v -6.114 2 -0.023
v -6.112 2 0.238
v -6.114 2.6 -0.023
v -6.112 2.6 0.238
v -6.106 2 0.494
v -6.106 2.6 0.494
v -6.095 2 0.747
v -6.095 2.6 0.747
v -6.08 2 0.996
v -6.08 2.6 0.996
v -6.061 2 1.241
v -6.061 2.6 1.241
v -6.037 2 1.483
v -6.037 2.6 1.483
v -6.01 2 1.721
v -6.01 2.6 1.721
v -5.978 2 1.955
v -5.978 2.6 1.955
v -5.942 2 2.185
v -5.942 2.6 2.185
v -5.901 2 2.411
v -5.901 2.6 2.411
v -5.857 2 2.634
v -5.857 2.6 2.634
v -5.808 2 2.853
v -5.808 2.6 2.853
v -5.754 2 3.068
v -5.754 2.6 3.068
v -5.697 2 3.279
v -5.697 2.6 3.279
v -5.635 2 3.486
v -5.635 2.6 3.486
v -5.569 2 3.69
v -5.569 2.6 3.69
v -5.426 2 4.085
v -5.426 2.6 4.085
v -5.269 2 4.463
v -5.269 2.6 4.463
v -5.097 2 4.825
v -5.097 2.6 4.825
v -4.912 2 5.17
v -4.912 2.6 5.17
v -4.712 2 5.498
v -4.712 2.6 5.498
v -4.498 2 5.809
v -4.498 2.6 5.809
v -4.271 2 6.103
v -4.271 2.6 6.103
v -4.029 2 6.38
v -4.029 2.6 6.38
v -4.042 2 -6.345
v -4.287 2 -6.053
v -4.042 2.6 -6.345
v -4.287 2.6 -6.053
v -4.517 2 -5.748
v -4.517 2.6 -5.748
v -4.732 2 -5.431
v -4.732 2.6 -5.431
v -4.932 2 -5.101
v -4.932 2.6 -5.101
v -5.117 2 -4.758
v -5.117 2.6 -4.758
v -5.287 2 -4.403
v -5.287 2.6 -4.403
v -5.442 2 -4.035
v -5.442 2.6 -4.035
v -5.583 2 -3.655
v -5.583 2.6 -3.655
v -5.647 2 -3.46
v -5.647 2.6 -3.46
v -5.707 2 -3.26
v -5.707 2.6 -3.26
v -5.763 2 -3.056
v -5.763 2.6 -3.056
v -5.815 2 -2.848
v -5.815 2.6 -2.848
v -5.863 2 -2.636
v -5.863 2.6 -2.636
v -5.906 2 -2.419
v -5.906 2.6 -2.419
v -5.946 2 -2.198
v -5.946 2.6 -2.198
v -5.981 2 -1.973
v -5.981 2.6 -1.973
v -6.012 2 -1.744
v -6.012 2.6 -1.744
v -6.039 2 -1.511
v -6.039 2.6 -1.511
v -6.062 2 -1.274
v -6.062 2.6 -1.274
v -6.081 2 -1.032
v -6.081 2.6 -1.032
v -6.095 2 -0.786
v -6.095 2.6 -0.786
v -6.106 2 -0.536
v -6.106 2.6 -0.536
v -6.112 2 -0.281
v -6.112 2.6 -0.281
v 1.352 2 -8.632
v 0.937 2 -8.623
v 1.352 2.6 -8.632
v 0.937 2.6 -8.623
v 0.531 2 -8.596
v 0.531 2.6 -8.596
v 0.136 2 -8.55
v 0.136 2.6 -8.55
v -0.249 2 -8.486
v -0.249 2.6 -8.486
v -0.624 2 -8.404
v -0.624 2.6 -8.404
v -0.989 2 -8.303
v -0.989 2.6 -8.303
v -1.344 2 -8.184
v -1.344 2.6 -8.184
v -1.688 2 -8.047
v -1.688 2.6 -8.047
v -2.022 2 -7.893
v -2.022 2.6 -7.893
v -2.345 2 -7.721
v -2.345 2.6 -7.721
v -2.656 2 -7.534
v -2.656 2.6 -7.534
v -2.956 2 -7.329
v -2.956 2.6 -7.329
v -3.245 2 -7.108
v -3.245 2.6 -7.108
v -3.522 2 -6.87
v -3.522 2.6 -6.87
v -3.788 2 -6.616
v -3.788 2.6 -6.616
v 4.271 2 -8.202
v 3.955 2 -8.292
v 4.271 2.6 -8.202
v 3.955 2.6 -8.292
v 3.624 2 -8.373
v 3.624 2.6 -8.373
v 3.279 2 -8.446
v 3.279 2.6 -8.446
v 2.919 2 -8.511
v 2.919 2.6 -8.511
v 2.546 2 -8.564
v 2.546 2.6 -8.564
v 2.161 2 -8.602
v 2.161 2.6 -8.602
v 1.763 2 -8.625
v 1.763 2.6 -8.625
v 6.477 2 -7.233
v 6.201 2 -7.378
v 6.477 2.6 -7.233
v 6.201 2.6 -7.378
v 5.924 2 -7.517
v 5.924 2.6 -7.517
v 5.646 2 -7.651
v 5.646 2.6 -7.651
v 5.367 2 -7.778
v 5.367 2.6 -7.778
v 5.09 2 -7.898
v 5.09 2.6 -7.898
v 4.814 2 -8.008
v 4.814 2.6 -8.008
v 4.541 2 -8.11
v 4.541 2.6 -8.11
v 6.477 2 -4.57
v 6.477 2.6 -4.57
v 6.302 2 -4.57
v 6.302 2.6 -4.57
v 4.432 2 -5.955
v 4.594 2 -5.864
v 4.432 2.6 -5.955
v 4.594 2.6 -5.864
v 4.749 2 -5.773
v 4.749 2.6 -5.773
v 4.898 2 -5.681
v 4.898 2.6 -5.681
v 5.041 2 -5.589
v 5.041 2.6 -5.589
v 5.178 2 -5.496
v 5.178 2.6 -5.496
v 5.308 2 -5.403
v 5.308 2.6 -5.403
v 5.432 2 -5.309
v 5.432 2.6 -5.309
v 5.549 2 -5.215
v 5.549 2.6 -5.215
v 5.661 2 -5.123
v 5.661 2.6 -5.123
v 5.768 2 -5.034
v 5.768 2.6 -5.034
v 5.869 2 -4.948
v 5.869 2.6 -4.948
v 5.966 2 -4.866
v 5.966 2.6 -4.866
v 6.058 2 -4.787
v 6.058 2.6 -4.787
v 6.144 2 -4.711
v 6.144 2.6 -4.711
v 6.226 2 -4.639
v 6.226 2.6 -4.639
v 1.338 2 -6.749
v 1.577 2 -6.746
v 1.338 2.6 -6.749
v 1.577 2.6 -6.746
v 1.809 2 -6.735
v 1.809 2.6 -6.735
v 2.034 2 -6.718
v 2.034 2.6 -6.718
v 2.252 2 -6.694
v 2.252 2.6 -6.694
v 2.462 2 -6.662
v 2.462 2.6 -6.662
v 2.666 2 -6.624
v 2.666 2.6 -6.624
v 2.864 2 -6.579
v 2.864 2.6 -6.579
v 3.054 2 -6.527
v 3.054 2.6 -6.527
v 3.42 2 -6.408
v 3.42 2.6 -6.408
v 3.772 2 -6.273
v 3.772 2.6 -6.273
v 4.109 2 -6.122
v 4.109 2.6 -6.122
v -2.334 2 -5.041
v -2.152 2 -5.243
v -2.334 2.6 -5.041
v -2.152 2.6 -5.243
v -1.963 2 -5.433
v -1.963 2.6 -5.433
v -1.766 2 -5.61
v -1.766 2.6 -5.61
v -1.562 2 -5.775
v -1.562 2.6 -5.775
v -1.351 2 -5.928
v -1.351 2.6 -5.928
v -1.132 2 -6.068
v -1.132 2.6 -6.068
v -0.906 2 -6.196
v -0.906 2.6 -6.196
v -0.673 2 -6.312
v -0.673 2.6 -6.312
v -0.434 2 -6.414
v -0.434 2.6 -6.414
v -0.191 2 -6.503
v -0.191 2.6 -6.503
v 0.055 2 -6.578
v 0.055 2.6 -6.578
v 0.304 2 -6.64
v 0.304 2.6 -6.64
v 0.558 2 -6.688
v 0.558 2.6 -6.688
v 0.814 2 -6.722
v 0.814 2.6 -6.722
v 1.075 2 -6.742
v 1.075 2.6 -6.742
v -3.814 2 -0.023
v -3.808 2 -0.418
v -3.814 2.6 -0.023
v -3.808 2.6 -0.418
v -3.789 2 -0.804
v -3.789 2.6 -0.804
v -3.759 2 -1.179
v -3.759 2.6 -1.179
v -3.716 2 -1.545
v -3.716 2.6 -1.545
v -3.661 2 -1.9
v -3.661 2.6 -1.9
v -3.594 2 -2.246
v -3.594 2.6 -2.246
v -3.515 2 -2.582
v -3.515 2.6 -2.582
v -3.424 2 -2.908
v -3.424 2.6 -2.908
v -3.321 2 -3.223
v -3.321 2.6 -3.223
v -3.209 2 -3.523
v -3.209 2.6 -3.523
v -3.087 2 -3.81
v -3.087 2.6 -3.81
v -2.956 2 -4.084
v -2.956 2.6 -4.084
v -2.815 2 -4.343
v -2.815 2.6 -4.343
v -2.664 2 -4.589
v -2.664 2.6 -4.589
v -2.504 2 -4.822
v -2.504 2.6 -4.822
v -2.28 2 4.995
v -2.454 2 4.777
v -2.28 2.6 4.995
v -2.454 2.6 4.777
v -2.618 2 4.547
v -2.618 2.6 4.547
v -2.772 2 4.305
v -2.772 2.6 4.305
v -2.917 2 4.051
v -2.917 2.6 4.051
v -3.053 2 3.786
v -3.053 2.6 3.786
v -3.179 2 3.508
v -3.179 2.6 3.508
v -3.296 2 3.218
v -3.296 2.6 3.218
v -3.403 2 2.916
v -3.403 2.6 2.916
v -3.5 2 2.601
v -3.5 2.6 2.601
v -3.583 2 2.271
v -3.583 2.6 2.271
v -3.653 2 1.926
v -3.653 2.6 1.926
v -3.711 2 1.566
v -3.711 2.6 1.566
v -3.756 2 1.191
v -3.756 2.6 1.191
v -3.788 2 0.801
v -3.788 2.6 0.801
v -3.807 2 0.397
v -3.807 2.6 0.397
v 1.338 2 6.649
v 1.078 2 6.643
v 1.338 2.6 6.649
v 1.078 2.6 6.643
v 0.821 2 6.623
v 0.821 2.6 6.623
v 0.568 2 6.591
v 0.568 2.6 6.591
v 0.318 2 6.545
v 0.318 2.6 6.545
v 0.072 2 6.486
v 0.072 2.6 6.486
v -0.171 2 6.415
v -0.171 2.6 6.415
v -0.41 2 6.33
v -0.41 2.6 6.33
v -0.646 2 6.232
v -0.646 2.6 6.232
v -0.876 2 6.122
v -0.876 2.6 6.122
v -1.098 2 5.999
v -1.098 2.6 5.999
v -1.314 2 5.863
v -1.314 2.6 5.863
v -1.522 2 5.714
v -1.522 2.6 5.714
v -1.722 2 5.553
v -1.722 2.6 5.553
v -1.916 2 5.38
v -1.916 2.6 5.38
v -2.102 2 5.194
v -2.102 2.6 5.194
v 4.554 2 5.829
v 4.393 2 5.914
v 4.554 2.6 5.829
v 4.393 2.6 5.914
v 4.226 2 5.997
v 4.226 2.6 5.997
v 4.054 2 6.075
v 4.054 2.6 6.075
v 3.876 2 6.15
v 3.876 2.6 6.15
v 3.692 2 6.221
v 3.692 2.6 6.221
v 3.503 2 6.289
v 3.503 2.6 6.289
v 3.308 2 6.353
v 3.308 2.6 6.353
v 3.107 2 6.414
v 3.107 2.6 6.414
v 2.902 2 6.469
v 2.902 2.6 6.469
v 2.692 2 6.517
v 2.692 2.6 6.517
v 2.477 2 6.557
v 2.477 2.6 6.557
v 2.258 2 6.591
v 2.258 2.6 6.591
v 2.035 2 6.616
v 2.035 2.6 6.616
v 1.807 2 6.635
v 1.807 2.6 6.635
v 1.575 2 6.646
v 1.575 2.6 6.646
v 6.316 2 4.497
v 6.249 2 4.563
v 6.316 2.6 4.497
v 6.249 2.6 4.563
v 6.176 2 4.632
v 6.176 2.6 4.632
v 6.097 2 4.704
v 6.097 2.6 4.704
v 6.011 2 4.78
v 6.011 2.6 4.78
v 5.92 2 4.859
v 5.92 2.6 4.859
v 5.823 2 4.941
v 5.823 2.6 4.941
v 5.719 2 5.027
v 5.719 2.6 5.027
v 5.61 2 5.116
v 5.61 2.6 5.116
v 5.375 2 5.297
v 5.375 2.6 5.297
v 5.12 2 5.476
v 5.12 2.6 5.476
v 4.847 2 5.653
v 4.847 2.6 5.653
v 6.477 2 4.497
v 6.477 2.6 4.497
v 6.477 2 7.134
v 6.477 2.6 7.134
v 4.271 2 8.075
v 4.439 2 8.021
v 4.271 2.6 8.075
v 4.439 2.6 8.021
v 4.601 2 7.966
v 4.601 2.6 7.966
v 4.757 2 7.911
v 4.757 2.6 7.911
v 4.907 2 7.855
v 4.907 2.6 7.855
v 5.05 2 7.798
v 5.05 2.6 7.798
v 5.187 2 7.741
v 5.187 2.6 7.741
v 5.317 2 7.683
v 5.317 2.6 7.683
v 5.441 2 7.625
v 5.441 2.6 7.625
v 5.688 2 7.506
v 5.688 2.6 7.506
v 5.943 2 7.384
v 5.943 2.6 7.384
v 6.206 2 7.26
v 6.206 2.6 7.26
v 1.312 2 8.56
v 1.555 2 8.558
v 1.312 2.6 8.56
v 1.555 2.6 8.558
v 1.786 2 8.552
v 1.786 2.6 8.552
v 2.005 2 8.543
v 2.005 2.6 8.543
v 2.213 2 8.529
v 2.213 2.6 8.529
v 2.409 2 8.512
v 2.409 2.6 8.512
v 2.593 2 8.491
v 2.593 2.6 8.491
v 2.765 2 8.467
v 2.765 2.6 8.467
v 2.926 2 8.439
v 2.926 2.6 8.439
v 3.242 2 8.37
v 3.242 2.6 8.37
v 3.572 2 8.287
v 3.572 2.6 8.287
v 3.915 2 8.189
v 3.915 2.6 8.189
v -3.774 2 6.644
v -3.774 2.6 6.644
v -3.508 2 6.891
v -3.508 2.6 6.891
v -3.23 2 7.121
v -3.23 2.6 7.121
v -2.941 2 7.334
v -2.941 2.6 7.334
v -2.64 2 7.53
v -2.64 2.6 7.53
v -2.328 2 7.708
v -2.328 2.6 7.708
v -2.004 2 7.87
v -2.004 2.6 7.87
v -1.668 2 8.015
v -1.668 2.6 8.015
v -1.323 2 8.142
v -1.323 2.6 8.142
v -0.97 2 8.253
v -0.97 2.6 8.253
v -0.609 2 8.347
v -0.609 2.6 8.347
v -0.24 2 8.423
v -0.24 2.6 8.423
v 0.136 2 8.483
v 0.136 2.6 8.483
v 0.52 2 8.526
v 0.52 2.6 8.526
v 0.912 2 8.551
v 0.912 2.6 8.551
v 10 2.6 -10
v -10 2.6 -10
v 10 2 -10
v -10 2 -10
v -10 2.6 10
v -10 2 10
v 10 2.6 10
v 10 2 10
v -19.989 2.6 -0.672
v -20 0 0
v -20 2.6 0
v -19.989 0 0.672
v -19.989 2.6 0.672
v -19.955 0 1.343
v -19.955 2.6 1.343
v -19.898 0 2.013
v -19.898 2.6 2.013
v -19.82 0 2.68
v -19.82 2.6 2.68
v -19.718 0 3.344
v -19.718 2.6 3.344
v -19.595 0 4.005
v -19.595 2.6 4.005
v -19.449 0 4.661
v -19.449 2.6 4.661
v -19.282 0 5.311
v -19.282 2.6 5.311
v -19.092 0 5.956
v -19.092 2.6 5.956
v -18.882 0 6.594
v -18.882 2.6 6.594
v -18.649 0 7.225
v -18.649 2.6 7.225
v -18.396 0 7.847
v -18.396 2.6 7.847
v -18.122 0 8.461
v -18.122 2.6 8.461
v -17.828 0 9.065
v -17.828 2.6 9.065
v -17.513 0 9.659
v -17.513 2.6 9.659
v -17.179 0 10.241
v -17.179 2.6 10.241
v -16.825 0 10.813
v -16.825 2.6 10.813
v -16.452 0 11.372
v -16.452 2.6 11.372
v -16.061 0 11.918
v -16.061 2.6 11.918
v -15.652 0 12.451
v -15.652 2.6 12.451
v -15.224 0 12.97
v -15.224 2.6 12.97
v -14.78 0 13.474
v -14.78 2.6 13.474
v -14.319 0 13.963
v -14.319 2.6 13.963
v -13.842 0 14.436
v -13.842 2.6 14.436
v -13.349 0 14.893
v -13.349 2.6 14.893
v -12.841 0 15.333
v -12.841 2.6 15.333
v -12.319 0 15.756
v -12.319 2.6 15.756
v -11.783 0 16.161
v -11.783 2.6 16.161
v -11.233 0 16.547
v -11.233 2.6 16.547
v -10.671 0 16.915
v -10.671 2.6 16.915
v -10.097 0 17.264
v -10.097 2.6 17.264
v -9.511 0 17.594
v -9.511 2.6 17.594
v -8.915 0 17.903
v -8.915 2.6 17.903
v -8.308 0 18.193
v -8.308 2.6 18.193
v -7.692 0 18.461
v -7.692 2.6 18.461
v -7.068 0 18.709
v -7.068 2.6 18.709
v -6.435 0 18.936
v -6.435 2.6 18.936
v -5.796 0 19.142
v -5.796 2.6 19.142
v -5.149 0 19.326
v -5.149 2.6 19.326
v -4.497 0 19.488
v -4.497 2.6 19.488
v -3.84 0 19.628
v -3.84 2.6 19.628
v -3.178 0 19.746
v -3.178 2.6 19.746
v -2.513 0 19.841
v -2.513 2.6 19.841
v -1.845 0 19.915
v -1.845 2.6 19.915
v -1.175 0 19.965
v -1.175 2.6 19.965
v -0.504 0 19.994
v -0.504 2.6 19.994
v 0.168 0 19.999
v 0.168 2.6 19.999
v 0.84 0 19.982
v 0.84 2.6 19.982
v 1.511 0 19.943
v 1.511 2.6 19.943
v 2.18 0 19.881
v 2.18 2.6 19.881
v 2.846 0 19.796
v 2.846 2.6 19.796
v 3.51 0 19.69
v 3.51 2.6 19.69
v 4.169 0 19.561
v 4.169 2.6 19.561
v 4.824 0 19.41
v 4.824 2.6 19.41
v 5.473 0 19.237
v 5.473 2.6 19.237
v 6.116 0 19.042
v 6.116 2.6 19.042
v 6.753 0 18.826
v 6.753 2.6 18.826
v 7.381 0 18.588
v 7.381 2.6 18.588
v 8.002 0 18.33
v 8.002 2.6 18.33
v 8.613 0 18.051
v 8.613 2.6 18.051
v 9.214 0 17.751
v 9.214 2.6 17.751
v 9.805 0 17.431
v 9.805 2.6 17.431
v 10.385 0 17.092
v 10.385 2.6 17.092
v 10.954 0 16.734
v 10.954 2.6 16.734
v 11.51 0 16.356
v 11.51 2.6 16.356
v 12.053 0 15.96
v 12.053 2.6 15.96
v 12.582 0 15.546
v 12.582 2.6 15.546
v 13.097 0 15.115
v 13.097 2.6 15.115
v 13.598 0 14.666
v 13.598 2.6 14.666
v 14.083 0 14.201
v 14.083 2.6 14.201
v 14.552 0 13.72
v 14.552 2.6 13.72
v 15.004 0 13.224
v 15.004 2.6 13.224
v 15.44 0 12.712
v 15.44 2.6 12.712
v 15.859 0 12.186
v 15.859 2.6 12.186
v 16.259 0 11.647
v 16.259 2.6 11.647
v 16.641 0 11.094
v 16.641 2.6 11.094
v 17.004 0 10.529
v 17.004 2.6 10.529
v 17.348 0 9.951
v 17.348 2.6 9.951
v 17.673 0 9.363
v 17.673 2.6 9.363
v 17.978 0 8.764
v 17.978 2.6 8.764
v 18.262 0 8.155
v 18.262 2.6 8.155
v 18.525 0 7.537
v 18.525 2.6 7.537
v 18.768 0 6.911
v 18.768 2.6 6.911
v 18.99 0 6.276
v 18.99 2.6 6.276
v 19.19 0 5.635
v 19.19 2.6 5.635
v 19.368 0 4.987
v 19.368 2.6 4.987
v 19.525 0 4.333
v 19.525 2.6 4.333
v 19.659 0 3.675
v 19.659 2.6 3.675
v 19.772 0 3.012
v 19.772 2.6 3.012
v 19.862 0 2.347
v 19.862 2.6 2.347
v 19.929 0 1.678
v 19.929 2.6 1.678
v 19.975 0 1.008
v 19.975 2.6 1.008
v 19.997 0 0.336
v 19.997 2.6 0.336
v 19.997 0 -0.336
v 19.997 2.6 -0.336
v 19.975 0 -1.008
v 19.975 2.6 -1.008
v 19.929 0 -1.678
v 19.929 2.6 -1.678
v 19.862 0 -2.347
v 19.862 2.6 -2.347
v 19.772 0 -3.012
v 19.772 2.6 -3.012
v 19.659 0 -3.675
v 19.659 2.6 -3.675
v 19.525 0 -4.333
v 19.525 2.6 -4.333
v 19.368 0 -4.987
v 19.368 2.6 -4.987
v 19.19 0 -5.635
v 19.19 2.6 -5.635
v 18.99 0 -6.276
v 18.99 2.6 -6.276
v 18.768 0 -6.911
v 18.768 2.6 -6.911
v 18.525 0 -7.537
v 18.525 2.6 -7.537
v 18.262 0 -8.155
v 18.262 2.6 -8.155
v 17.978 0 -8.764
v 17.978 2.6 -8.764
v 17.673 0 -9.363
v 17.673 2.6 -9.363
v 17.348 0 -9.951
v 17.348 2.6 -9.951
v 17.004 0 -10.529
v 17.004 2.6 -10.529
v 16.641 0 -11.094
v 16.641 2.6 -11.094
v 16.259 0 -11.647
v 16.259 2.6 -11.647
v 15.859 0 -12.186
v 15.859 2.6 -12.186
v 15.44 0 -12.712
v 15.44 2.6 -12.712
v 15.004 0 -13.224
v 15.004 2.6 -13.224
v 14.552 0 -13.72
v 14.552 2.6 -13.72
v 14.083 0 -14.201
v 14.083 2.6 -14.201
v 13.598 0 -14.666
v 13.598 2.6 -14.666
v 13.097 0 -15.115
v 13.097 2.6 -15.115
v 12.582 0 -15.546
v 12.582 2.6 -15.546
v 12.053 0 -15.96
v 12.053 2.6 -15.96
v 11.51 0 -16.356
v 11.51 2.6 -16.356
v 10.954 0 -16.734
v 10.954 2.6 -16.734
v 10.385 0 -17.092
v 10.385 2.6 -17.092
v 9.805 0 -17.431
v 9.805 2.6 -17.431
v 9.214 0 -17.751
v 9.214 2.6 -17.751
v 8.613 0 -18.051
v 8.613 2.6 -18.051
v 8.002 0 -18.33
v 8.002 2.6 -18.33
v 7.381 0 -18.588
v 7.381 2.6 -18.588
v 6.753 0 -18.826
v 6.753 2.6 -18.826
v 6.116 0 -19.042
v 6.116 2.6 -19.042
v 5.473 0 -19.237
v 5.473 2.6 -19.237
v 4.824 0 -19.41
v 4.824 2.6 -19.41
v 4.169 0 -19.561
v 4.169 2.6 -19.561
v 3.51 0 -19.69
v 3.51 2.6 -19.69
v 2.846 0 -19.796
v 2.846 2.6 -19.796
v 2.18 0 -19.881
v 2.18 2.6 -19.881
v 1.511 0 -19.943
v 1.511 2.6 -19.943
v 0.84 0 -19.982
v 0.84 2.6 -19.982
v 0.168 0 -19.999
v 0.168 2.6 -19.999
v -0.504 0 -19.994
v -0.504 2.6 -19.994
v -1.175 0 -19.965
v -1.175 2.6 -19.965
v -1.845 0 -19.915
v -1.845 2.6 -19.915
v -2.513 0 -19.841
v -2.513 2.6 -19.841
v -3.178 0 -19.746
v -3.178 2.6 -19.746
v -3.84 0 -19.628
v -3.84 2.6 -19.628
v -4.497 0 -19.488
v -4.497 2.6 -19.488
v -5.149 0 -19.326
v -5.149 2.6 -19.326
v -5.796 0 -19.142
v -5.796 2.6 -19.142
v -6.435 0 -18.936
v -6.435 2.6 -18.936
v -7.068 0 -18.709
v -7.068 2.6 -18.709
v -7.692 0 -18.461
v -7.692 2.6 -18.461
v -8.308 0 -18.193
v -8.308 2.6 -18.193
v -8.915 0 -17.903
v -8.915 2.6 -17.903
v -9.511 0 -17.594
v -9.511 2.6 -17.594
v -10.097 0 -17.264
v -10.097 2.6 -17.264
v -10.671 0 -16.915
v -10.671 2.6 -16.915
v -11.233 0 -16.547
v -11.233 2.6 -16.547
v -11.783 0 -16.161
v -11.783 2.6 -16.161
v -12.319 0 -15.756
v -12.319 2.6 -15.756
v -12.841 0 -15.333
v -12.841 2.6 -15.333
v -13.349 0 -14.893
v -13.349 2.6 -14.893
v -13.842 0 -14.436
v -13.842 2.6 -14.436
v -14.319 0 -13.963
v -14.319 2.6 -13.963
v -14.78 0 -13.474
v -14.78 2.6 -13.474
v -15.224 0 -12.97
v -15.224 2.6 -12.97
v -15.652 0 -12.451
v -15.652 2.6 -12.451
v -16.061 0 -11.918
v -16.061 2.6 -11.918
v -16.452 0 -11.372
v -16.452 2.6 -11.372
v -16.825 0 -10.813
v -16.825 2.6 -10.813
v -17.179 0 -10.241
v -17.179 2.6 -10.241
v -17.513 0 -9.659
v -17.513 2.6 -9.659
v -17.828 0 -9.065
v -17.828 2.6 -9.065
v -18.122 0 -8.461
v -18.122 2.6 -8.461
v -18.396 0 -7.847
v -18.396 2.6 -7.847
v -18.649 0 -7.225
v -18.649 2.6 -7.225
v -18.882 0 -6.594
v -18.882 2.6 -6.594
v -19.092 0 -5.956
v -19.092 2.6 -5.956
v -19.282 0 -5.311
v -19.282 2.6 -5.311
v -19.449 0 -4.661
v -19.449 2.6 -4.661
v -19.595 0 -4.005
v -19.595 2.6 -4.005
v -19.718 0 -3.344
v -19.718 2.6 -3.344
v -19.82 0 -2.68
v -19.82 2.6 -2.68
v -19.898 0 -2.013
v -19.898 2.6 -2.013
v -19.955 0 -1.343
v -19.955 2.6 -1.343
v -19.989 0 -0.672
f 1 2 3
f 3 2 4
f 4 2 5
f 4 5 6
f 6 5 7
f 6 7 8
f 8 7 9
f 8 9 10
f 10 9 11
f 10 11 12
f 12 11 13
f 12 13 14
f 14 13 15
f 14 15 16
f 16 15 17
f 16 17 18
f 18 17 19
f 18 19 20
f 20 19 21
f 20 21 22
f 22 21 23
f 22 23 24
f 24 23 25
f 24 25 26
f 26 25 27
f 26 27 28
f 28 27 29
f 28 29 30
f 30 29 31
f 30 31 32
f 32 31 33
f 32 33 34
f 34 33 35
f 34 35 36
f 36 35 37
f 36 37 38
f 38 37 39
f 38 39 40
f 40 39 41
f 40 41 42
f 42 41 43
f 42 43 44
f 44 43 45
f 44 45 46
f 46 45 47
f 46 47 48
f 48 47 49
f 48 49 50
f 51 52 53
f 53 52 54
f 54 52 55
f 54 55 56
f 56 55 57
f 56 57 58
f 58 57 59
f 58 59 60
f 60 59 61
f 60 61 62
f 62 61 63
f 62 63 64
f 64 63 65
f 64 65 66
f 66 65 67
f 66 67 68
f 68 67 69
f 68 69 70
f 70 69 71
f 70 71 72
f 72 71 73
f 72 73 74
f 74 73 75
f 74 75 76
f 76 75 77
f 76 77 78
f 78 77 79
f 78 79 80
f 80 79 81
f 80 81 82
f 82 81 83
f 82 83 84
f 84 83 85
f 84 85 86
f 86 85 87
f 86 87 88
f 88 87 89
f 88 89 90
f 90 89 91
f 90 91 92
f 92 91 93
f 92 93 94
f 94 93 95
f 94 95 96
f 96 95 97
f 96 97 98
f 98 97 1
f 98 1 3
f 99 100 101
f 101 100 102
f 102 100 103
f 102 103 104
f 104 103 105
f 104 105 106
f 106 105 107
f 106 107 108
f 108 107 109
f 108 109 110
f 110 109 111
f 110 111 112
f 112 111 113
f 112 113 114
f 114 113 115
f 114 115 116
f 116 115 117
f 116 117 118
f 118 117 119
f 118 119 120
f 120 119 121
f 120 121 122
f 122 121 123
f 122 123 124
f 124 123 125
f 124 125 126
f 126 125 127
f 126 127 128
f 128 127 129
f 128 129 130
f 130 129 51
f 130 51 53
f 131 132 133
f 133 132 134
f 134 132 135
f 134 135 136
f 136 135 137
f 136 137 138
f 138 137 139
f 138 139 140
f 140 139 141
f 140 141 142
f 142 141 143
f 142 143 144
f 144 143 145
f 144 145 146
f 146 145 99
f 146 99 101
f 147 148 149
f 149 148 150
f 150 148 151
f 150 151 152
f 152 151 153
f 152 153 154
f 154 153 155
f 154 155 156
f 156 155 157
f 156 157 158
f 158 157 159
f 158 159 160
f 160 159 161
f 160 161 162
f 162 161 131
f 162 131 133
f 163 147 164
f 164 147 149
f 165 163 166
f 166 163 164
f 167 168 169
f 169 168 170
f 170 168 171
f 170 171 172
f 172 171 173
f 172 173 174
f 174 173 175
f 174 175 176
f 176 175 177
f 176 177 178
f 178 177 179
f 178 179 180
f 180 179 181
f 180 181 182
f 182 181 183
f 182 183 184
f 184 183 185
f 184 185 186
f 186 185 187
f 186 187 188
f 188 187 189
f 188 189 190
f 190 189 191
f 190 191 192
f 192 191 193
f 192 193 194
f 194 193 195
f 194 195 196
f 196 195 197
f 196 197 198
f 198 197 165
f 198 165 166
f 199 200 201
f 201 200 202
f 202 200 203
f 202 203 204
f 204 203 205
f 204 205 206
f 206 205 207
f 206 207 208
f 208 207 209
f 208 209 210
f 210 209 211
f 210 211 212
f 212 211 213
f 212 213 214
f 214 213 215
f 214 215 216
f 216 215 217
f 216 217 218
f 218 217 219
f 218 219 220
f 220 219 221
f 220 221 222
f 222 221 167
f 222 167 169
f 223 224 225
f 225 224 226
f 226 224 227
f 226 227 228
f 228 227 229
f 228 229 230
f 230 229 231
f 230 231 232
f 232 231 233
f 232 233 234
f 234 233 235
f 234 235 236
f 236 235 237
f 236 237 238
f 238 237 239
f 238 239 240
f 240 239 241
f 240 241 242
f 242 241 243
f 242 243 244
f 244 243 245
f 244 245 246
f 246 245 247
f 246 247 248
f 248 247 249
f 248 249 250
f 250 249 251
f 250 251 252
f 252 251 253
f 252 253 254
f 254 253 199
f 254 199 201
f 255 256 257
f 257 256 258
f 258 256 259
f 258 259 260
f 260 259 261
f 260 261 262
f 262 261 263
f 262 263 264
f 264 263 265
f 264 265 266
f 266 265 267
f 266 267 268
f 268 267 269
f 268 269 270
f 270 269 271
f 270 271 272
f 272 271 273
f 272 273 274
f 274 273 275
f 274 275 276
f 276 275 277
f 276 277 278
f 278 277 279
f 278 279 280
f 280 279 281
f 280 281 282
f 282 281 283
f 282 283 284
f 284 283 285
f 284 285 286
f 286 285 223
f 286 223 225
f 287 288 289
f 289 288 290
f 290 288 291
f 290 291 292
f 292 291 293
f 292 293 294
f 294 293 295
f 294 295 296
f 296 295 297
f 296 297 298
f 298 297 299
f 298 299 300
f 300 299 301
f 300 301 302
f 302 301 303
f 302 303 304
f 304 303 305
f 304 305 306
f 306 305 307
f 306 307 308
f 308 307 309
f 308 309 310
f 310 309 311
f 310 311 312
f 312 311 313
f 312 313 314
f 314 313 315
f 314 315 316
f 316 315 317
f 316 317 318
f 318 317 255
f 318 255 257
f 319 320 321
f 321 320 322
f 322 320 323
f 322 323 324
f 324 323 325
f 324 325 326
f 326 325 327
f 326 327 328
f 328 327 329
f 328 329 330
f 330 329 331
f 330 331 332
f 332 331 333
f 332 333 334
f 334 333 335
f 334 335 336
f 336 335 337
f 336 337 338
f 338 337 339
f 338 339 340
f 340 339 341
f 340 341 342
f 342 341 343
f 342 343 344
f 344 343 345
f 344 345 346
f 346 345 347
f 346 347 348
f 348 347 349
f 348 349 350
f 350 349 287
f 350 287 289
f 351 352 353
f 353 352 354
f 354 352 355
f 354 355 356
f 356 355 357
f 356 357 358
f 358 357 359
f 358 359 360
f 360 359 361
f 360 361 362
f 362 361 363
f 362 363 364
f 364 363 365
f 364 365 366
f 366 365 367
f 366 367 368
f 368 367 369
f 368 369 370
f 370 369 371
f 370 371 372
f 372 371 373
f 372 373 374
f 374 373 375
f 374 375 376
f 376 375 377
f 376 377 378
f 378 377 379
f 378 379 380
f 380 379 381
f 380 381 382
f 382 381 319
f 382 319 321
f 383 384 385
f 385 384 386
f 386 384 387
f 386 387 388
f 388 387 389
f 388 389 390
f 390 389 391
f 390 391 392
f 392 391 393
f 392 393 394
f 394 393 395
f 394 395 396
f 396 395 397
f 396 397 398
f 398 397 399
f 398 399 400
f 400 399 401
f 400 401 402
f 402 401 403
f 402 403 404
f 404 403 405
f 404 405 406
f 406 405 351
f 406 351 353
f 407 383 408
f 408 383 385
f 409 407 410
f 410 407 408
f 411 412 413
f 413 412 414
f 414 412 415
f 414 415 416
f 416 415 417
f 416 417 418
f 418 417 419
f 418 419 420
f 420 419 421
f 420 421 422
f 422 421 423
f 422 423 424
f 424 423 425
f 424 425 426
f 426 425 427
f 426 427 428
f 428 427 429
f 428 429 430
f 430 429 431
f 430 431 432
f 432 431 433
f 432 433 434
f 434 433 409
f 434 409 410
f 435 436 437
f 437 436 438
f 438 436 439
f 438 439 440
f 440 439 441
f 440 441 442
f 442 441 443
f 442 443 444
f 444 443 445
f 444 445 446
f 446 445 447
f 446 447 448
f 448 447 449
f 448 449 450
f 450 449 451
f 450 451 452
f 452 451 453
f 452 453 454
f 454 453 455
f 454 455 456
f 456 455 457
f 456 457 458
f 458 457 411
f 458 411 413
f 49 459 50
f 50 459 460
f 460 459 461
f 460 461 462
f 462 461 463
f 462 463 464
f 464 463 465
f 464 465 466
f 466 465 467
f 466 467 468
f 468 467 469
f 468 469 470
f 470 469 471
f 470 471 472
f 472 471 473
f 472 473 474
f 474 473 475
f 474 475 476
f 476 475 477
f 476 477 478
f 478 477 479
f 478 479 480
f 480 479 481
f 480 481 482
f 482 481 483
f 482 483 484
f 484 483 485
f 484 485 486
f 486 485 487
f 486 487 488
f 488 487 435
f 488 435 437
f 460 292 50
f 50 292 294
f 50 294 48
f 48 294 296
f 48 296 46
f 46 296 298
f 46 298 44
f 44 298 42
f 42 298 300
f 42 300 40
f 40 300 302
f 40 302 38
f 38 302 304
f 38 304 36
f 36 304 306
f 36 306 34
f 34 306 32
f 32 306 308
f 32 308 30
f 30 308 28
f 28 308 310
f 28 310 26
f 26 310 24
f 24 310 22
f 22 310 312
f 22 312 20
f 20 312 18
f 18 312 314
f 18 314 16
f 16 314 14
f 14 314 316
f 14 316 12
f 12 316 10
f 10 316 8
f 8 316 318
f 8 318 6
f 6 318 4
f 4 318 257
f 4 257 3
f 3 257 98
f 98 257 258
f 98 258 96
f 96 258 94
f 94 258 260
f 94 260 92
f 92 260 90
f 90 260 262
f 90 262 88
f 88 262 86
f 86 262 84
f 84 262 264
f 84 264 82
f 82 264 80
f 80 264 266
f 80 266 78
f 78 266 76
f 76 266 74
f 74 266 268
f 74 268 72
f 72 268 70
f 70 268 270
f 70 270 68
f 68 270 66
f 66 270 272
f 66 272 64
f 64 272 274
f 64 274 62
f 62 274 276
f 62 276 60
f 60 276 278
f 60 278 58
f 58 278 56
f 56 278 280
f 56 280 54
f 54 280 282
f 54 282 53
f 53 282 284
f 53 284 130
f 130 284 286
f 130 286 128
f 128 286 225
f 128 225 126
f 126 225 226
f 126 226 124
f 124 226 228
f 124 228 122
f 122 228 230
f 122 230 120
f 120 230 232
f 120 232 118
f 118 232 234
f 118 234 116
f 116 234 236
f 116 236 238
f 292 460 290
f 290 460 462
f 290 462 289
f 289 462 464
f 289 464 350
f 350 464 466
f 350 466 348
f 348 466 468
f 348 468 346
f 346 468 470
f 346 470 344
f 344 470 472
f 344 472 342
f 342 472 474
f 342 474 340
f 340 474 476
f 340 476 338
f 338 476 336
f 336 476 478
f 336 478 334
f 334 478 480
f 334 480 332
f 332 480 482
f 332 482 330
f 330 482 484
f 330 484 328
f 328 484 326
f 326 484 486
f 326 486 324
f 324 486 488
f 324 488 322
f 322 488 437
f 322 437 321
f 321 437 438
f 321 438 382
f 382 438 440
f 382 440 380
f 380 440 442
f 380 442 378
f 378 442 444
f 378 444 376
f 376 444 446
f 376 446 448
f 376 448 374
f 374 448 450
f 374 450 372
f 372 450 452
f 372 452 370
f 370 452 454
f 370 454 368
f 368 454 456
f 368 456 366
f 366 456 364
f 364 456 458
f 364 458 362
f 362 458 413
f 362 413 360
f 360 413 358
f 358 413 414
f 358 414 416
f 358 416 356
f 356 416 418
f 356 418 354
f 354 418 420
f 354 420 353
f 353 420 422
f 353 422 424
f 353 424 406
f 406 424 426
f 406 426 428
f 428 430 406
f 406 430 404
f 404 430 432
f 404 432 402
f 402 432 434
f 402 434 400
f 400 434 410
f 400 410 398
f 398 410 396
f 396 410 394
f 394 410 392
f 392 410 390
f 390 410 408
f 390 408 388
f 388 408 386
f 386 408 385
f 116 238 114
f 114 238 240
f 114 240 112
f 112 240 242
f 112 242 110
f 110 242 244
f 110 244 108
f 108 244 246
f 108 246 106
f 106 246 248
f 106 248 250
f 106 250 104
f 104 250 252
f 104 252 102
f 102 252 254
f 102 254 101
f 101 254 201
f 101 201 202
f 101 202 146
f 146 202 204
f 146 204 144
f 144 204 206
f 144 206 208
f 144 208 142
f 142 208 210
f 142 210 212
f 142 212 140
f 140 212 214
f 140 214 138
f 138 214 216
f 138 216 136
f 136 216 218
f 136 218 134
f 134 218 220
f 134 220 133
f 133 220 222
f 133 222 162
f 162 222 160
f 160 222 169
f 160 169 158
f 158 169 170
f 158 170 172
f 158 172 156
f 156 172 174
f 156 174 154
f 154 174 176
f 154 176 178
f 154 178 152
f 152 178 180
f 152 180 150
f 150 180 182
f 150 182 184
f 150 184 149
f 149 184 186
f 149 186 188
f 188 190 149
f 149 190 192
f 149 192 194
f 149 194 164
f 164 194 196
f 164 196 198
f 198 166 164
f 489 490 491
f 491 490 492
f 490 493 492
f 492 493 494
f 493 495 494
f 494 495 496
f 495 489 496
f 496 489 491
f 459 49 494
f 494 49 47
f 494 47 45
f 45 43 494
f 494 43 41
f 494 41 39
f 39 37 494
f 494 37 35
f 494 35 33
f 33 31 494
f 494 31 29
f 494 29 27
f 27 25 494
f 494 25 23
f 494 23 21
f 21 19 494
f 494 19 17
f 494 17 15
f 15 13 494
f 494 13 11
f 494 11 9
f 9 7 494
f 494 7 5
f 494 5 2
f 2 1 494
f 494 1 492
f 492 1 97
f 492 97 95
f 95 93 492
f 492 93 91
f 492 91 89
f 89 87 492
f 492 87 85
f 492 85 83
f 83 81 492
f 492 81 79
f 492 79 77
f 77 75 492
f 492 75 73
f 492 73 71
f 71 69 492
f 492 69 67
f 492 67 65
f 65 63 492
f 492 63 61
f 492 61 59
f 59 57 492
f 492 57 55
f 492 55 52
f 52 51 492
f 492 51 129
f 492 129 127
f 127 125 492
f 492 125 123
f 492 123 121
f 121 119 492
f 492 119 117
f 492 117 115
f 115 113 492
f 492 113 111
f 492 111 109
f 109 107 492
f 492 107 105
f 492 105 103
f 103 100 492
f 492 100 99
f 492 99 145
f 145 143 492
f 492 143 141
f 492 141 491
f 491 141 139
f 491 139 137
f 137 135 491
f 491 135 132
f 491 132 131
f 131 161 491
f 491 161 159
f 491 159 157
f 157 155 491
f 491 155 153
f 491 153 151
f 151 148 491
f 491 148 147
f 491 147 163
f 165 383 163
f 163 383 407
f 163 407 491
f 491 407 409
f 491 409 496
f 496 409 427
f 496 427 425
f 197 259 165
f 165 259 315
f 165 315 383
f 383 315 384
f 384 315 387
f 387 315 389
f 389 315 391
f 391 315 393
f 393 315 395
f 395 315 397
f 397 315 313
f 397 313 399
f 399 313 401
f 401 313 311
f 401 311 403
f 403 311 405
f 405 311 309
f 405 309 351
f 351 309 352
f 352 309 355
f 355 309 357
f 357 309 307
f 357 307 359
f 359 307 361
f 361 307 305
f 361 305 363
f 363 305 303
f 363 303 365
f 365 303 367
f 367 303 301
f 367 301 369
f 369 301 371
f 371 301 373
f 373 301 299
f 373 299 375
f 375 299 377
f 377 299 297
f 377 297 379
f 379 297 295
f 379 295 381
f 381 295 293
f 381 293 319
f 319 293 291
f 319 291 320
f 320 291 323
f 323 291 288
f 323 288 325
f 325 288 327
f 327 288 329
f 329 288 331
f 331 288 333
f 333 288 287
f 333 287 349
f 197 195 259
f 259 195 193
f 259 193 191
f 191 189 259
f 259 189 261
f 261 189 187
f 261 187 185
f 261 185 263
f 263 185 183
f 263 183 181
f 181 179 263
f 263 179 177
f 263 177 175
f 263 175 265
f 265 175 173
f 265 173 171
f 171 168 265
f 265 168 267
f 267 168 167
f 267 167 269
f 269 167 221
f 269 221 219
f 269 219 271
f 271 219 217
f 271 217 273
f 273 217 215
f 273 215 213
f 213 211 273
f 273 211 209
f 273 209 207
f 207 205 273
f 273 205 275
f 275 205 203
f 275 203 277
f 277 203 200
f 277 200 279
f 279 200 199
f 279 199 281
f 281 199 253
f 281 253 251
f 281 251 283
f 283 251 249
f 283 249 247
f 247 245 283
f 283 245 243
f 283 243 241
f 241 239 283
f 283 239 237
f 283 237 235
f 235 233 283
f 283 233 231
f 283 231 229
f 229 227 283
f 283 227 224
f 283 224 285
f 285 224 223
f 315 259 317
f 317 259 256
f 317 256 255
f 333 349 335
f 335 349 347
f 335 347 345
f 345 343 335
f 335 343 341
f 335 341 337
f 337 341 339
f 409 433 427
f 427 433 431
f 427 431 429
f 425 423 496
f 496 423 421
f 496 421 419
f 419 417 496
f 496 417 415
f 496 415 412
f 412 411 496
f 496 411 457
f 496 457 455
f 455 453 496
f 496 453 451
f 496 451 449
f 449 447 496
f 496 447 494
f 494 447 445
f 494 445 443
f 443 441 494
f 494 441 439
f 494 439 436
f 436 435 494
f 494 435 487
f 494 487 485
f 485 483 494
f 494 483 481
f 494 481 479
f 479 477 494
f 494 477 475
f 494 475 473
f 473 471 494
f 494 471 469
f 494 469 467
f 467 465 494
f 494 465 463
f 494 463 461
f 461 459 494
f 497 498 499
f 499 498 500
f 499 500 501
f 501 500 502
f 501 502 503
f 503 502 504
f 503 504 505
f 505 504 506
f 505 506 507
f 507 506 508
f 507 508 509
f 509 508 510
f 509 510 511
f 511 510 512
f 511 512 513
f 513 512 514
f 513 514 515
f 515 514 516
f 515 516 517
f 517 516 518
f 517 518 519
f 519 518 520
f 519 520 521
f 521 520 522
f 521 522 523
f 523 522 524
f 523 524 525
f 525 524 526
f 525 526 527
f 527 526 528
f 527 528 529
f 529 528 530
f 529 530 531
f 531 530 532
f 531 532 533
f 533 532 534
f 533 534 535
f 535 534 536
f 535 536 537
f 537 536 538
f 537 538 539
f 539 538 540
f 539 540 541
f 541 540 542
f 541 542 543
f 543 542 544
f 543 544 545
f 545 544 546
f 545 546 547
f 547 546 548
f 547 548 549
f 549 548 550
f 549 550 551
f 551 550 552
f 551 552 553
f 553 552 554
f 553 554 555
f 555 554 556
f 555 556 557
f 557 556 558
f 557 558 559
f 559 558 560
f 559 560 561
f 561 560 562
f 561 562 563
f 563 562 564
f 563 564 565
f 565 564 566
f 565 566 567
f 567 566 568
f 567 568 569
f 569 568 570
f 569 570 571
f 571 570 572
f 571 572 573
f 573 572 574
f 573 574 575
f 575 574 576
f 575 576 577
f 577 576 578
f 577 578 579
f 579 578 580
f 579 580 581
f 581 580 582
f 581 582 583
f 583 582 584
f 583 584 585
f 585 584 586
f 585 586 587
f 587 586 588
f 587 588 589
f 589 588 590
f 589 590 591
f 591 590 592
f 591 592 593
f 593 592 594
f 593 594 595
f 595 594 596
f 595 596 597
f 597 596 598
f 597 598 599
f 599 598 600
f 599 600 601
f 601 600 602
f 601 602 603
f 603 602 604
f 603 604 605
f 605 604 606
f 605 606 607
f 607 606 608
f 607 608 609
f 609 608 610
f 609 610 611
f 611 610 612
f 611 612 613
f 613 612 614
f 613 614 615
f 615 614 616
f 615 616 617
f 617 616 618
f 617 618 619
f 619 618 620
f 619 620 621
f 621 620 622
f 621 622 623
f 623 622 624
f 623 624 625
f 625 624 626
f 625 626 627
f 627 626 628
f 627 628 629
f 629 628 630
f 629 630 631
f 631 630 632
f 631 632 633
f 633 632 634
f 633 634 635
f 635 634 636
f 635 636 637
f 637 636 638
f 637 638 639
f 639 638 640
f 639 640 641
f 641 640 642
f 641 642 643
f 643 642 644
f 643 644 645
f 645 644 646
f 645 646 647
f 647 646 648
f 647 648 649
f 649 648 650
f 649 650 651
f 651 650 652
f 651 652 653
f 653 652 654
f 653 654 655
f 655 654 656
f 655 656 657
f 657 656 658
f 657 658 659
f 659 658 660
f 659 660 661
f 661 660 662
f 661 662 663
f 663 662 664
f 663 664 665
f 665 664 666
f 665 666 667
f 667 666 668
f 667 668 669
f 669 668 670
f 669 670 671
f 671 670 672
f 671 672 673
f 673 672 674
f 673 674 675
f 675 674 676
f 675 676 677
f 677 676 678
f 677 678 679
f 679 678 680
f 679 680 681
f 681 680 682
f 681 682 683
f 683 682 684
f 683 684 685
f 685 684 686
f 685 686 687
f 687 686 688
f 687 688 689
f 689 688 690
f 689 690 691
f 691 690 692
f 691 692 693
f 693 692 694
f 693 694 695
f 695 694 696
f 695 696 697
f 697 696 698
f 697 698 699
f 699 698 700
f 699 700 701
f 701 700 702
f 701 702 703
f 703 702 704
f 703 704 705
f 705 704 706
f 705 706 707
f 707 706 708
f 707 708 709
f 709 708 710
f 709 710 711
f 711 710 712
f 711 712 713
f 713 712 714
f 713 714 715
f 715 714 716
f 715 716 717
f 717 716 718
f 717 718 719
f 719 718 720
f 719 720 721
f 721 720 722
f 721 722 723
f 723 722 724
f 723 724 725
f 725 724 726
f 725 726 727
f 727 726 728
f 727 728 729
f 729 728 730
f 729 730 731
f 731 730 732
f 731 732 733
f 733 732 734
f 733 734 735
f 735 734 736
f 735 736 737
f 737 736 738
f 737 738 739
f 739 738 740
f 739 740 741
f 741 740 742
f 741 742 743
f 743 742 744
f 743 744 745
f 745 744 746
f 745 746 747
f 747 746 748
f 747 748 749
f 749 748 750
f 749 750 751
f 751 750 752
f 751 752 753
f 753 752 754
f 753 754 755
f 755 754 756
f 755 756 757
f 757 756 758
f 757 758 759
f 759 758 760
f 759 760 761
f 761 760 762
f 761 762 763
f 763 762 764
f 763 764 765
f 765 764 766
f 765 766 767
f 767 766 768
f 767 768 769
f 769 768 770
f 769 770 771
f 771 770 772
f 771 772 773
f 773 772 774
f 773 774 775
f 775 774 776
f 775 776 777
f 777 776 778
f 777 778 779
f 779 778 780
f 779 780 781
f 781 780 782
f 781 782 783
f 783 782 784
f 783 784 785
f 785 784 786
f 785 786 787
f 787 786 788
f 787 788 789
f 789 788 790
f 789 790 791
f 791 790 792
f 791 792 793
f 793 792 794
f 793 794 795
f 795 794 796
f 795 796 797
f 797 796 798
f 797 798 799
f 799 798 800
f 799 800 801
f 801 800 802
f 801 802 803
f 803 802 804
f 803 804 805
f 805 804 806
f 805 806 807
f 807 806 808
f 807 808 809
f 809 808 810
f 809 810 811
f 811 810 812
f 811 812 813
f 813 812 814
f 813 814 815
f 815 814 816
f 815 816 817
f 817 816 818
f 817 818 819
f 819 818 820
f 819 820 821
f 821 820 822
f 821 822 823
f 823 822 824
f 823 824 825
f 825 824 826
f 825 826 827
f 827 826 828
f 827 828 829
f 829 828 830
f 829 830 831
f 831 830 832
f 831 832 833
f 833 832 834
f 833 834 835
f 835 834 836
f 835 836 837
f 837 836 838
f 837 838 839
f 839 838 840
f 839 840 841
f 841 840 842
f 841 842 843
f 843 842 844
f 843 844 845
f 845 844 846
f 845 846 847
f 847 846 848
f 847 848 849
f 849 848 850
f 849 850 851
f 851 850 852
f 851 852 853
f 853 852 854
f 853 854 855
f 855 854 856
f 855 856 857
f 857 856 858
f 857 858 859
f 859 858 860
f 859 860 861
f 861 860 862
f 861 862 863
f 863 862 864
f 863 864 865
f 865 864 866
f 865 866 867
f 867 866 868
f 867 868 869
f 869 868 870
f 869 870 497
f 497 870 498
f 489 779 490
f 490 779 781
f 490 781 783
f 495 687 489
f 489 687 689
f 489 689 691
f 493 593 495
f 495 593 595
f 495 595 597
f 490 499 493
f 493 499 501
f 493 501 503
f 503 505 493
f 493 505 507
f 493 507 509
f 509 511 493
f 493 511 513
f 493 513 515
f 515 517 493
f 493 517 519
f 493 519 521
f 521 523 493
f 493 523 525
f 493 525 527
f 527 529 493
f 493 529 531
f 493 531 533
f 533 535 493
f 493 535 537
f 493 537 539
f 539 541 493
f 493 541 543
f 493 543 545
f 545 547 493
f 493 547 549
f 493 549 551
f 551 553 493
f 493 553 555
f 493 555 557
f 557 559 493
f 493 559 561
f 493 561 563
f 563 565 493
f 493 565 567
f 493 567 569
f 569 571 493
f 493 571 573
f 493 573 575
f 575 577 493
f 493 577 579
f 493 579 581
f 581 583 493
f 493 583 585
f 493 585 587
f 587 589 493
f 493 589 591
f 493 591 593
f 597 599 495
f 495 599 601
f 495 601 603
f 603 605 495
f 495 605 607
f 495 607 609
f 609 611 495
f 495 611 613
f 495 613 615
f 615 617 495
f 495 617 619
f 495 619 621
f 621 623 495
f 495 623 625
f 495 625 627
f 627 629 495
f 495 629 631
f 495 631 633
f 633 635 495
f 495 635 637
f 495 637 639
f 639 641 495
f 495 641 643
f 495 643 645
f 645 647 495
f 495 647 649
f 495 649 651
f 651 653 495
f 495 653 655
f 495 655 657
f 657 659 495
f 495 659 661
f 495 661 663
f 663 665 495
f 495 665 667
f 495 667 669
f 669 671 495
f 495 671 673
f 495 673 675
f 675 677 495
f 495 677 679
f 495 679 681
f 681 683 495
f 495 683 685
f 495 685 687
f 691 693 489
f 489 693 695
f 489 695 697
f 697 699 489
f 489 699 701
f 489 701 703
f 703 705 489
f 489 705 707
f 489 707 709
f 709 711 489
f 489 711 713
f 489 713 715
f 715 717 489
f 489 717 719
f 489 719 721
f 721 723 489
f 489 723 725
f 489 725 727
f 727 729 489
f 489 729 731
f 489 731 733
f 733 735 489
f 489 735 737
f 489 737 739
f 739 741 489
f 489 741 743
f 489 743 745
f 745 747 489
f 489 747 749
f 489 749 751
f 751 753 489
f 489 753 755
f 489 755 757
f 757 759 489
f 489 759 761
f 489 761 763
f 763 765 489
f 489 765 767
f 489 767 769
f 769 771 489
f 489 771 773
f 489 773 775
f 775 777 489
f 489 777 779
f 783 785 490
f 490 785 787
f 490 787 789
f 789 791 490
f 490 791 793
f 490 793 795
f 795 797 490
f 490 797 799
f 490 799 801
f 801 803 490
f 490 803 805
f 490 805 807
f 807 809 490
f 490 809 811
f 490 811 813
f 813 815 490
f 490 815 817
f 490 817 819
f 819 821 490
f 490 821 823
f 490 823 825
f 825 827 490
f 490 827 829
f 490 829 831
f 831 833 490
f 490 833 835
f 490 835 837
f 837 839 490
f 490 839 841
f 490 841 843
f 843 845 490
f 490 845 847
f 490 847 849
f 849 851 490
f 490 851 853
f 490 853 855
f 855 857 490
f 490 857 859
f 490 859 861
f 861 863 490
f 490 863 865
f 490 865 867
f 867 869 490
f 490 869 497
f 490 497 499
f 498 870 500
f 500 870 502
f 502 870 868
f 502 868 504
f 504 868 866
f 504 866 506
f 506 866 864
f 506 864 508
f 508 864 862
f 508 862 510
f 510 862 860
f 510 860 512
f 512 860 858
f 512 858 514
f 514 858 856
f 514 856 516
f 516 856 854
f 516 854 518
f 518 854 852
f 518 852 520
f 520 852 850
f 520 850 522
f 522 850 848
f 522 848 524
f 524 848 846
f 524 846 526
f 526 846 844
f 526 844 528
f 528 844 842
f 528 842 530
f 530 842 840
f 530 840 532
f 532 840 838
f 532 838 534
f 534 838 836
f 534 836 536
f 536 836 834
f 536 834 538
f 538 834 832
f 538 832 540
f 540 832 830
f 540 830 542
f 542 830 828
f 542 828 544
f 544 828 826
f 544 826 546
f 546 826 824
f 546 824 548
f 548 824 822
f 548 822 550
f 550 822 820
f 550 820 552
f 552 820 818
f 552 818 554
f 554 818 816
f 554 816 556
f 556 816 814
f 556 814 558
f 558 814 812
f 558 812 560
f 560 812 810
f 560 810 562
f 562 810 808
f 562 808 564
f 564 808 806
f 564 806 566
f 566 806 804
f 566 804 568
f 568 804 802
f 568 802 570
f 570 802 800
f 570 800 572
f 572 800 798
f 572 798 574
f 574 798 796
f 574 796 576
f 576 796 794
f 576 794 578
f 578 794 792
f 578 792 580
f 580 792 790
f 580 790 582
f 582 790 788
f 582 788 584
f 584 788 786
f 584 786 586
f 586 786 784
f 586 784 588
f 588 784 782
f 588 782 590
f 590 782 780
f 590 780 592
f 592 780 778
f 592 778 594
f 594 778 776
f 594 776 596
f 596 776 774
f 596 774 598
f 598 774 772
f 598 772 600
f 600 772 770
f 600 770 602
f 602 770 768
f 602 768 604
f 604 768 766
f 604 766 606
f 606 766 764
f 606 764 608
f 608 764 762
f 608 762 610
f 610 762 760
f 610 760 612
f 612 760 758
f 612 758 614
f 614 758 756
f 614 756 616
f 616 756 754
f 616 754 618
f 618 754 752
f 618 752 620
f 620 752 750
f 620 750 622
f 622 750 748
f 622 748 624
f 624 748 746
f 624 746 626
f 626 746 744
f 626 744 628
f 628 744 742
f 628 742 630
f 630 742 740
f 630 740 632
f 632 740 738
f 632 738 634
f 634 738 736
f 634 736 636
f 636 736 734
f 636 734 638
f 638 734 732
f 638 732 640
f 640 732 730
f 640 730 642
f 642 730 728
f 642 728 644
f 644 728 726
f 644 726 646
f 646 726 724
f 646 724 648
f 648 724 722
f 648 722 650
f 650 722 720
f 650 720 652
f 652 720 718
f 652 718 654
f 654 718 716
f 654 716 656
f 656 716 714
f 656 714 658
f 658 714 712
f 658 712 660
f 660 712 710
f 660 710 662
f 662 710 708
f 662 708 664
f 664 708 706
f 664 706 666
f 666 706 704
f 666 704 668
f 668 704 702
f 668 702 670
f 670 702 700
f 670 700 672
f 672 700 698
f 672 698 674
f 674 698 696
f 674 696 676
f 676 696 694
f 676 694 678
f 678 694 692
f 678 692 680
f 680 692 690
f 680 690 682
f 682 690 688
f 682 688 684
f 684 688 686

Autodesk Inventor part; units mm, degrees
ref_plane "YZ Plane" through (0, 0, 0) normal (1, 0, 0) x (0, 1, 0)
ref_plane "XZ Plane" through (0, 0, 0) normal (0, 1, 0) x (-1, 0, 0)
ref_plane "XY Plane" through (0, 0, 0) normal (0, 0, 1) x (1, 0, 0)
sketch "Sketch1" plane through (0, 0, 0) normal (0, 1, 0) x (-1, 0, 0)
  circle A0 centre (0, 0) radius 20
  dimension "d0" = 40
extrude "Extrusion1" add sketch "Sketch1" along normal blind 2.6
sketch "Sketch2" plane through (0, 2.6, 0) normal (0, 1, 0) x (1, 0, 0)
  line L0 (-10, -10) -> (-10, 10)
  line L1 (-10, 10) -> (10, 10)
  line L2 (10, 10) -> (10, -10)
  line L3 (10, -10) -> (-10, -10)
  line L4 (-10, -10) -> (10, 10) construction
  line L5 (-10, 10) -> (10, -10) construction
  point P0 (0, 0)
  dimension "d3" = 20
  dimension "d4" = 20
extrude "Extrusion2" cut sketch "Sketch2" against normal blind 0.6
sketch "Sketch3" plane through (0, 2, 0) normal (0, 1, 0) x (1, 0, 0)
  line L0 (-6.8539, 8.6323) -> (6.8539, 8.6323) construction
  line L1 (6.8539, 8.6323) -> (6.8539, -8.5596) construction
  line L2 (6.8539, -8.5596) -> (-6.8539, -8.5596) construction
  line L3 (-6.8539, -8.5596) -> (-6.8539, 8.6323) construction
  spline S0 degree 2 poles (1.3116, -8.5596) (-0.3027, -8.5596) (-3.0335, -7.47) (-4.0289, -6.3803) knots 0 0 0 1 2 2 2
  spline S1 degree 2 poles (-4.0289, -6.3803) (-5.0244, -5.3042) (-6.114, -2.0756) (-6.114, 0.0229) knots 0 0 0 1 2 2 2
  spline S2 degree 2 poles (-6.114, 0.0229) (-6.114, 2.108) (-5.0513, 5.202) (-4.0424, 6.3454) knots 0 0 0 1 2 2 2
  spline S3 degree 2 poles (-4.0424, 6.3454) (-3.0469, 7.462) (-0.3296, 8.6323) (1.3519, 8.6323) knots 0 0 0 1 2 2 2
  spline S4 degree 2 poles (1.3519, 8.6323) (2.186, 8.6323) (3.6523, 8.3902) (4.2711, 8.2018) knots 0 0 0 1 2 2 2
  spline S5 degree 2 poles (4.2711, 8.2018) (4.8092, 8.027) (5.9257, 7.5292) (6.4772, 7.2333) knots 0 0 0 1 2 2 2
  line L4 (6.4772, 7.2333) -> (6.4772, 4.5697)
  line L5 (6.4772, 4.5697) -> (6.3024, 4.5697)
  spline S6 degree 2 poles (6.3024, 4.5697) (6.0064, 4.8388) (5.0917, 5.5921) (4.4325, 5.9553) knots 0 0 0 1 2 2 2
  spline S7 degree 2 poles (4.4325, 5.9553) (3.8002, 6.3051) (2.3071, 6.749) (1.3385, 6.749) knots 0 0 0 1 2 2 2
  spline S8 degree 2 poles (1.3385, 6.749) (0.2758, 6.749) (-1.621, 5.8746) (-2.334, 5.0406) knots 0 0 0 1 2 2 2
  spline S9 degree 2 poles (-2.334, 5.0406) (-3.0335, 4.1931) (-3.8137, 1.6237) (-3.8137, 0.0229) knots 0 0 0 1 2 2 2
  spline S10 degree 2 poles (-3.8137, 0.0229) (-3.8137, -1.6855) (-2.9931, -4.1473) (-2.2801, -4.9948) knots 0 0 0 1 2 2 2
  spline S11 degree 2 poles (-2.2801, -4.9948) (-1.5806, -5.8153) (0.2892, -6.6494) (1.3385, -6.6494) knots 0 0 0 1 2 2 2
  spline S12 degree 2 poles (1.3385, -6.6494) (2.2936, -6.6494) (3.9213, -6.1786) (4.5536, -5.8288) knots 0 0 0 1 2 2 2
  spline S13 degree 2 poles (4.5536, -5.8288) (5.1589, -5.479) (6.0602, -4.7526) (6.3158, -4.497) knots 0 0 0 1 2 2 2
  line L6 (6.3158, -4.497) -> (6.4772, -4.497)
  line L7 (6.4772, -4.497) -> (6.4772, -7.1337)
  spline S14 degree 2 poles (6.4772, -7.1337) (5.9257, -7.3893) (4.9571, -7.8601) (4.2711, -8.0753) knots 0 0 0 1 2 2 2
  spline S15 degree 2 poles (4.2711, -8.0753) (3.5447, -8.3175) (2.3071, -8.5596) (1.3116, -8.5596) knots 0 0 0 1 2 2 2
  point P0 (0, 0)
extrude "Extrusion3" add sketch "Sketch3" along normal blind 0.6
properties part number "TopMarkerPreset"
